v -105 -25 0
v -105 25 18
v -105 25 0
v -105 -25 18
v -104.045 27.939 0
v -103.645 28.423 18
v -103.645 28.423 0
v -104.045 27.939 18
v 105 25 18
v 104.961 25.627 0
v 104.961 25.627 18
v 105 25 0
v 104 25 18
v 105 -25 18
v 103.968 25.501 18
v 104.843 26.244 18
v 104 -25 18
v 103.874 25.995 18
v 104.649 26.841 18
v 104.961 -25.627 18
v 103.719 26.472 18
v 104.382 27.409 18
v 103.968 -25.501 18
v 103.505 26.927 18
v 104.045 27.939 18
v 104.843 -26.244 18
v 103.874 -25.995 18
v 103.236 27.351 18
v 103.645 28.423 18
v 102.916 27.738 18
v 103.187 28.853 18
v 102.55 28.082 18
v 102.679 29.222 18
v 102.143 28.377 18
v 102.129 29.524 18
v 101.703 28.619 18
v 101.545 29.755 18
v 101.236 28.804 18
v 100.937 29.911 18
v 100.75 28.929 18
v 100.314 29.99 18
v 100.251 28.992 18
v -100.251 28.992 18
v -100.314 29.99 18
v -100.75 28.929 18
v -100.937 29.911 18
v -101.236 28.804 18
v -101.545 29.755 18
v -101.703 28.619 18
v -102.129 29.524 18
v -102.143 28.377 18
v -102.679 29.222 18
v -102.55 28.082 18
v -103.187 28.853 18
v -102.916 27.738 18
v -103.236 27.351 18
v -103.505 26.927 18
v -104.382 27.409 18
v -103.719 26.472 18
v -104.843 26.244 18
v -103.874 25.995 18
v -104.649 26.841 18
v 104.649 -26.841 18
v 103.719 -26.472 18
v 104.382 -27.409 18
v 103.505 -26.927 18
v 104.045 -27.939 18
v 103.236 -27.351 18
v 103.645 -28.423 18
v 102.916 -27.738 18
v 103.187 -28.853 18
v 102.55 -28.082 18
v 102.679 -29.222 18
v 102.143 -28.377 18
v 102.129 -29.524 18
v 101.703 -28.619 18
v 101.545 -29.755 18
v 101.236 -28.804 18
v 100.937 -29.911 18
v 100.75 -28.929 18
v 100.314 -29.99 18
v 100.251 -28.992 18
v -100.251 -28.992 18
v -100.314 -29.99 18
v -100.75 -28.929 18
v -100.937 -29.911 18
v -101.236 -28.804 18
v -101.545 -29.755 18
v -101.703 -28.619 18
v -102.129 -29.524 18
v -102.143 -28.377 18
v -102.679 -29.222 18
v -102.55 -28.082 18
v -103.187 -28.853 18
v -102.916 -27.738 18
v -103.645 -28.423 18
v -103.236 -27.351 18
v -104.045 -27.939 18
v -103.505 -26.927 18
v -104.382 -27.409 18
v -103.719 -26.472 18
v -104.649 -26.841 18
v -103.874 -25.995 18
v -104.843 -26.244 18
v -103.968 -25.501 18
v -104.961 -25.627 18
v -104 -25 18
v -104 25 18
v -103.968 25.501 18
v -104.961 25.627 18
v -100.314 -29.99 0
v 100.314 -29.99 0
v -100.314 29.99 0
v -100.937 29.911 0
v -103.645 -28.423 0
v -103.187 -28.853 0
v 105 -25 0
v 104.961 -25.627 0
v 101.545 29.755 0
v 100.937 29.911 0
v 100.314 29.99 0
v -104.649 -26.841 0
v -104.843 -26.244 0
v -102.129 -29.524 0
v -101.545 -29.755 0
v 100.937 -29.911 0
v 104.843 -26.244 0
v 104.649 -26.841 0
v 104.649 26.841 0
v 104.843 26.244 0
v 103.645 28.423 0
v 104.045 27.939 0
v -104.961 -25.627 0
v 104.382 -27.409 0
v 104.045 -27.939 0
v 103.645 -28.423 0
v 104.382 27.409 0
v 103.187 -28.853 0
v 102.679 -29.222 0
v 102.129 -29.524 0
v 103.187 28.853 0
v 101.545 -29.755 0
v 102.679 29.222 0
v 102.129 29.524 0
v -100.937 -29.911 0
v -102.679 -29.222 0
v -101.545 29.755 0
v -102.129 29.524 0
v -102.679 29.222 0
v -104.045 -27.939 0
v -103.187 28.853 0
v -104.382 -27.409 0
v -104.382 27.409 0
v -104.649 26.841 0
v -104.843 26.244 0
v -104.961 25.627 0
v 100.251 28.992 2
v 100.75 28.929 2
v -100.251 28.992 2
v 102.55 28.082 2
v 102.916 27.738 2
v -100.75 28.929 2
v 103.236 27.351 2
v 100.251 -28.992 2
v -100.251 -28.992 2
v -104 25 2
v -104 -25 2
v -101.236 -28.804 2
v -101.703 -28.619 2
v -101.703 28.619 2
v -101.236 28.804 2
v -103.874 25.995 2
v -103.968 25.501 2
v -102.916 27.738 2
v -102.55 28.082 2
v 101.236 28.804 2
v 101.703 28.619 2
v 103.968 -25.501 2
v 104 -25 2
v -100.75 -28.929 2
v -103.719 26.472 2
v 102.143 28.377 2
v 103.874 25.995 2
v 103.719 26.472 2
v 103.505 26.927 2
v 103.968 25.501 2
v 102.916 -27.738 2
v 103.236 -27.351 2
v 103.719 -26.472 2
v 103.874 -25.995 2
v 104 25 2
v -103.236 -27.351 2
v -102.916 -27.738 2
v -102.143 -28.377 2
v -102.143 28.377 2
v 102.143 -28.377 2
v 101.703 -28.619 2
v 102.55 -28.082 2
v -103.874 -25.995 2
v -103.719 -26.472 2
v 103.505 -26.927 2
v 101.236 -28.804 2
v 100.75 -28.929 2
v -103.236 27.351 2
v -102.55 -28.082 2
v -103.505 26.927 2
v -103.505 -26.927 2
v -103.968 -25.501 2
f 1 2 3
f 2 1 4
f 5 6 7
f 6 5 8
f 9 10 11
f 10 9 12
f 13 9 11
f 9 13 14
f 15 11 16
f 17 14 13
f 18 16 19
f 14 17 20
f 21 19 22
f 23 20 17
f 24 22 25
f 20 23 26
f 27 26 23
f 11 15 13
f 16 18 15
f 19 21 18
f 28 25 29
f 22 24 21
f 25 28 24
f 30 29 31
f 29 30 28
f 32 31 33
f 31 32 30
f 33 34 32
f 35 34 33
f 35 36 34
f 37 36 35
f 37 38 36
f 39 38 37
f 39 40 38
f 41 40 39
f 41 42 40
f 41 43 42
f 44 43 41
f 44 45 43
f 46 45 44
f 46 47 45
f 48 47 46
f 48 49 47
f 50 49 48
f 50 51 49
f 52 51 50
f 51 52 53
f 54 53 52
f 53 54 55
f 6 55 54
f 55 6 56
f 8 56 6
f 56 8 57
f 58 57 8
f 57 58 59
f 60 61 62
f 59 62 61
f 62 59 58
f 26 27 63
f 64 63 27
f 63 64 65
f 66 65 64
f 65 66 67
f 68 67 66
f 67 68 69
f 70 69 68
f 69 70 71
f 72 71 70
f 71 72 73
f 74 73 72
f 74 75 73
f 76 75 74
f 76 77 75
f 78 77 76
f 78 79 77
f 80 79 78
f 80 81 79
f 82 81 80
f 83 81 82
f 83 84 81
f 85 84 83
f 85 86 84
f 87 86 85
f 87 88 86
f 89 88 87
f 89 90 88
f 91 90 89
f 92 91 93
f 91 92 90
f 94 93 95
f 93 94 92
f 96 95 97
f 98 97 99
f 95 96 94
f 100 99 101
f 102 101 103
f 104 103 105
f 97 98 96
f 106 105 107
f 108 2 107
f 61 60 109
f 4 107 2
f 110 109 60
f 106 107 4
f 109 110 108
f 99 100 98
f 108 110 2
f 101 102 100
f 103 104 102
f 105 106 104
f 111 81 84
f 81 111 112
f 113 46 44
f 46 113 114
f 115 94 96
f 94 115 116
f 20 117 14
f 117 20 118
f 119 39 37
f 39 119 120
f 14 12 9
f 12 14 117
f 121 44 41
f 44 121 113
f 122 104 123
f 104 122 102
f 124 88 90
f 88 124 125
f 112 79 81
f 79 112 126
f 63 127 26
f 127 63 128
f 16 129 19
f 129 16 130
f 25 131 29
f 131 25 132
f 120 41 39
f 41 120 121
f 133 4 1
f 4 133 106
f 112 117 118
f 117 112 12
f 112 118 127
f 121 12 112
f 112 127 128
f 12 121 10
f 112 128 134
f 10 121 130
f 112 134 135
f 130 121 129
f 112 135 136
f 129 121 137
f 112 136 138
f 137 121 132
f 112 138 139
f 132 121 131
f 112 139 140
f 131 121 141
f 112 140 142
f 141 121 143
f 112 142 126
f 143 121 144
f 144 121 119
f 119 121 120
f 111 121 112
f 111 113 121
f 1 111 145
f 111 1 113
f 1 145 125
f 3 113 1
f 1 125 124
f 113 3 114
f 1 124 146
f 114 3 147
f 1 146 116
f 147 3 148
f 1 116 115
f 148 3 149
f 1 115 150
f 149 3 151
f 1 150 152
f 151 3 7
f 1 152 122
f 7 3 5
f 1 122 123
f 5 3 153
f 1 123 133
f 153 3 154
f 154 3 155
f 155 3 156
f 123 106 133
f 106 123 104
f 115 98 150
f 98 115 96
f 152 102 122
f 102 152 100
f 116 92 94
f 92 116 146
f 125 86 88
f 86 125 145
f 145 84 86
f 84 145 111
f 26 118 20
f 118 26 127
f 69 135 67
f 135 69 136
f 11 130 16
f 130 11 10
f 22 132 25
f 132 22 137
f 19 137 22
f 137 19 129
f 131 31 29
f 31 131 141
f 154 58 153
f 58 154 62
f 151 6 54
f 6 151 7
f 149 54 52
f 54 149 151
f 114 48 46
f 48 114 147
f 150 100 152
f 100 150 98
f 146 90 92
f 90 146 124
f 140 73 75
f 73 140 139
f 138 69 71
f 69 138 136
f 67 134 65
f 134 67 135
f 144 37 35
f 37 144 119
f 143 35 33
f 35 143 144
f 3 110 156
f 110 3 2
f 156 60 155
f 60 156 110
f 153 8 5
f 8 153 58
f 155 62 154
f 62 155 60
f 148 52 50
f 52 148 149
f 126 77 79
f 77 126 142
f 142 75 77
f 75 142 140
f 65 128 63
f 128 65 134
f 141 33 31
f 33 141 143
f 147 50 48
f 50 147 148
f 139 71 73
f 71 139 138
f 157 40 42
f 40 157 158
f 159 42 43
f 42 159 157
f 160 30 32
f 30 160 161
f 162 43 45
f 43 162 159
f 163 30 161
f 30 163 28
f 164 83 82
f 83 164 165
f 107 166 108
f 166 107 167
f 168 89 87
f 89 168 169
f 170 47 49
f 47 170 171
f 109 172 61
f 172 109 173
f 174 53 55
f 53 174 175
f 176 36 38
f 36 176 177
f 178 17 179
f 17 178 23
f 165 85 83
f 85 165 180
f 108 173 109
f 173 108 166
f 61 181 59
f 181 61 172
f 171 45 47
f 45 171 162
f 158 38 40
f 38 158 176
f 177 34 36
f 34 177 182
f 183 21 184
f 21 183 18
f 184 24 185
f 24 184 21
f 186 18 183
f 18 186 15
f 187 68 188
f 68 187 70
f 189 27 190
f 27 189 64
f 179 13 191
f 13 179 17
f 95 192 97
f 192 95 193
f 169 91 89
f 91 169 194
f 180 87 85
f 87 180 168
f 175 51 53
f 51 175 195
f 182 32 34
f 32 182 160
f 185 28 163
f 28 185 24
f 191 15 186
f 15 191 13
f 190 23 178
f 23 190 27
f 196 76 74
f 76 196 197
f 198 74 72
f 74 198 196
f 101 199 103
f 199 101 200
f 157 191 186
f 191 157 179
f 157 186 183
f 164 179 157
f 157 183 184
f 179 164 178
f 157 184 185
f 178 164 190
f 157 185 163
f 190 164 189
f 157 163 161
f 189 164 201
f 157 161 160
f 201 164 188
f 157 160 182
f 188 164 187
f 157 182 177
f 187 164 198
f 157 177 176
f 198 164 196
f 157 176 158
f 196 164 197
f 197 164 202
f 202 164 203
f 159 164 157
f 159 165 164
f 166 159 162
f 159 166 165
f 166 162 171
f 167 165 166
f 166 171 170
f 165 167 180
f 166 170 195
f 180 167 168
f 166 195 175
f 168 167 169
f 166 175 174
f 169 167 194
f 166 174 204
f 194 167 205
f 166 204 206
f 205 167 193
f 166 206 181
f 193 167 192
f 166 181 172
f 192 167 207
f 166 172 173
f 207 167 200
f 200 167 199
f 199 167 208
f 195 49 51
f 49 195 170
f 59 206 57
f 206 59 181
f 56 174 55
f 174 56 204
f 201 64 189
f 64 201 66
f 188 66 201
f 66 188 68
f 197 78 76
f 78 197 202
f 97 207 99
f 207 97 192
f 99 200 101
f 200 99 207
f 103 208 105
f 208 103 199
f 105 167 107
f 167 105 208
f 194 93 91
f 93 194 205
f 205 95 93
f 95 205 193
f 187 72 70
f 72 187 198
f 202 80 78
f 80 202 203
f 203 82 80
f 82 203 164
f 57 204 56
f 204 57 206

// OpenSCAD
$fn = 50;


difference() {
	union() {
		hull() {
			translate(v = [-100.0000000000, 25.0000000000, 0]) {
				cylinder(h = 18, r = 5);
			}
			translate(v = [100.0000000000, 25.0000000000, 0]) {
				cylinder(h = 18, r = 5);
			}
			translate(v = [-100.0000000000, -25.0000000000, 0]) {
				cylinder(h = 18, r = 5);
			}
			translate(v = [100.0000000000, -25.0000000000, 0]) {
				cylinder(h = 18, r = 5);
			}
		}
	}
	union() {
		translate(v = [0, 0, 2]) {
			hull() {
				translate(v = [-100.0000000000, 25.0000000000, 0]) {
					cylinder(h = 16, r = 4);
				}
				translate(v = [100.0000000000, 25.0000000000, 0]) {
					cylinder(h = 16, r = 4);
				}
				translate(v = [-100.0000000000, -25.0000000000, 0]) {
					cylinder(h = 16, r = 4);
				}
				translate(v = [100.0000000000, -25.0000000000, 0]) {
					cylinder(h = 16, r = 4);
				}
			}
		}
	}
}
